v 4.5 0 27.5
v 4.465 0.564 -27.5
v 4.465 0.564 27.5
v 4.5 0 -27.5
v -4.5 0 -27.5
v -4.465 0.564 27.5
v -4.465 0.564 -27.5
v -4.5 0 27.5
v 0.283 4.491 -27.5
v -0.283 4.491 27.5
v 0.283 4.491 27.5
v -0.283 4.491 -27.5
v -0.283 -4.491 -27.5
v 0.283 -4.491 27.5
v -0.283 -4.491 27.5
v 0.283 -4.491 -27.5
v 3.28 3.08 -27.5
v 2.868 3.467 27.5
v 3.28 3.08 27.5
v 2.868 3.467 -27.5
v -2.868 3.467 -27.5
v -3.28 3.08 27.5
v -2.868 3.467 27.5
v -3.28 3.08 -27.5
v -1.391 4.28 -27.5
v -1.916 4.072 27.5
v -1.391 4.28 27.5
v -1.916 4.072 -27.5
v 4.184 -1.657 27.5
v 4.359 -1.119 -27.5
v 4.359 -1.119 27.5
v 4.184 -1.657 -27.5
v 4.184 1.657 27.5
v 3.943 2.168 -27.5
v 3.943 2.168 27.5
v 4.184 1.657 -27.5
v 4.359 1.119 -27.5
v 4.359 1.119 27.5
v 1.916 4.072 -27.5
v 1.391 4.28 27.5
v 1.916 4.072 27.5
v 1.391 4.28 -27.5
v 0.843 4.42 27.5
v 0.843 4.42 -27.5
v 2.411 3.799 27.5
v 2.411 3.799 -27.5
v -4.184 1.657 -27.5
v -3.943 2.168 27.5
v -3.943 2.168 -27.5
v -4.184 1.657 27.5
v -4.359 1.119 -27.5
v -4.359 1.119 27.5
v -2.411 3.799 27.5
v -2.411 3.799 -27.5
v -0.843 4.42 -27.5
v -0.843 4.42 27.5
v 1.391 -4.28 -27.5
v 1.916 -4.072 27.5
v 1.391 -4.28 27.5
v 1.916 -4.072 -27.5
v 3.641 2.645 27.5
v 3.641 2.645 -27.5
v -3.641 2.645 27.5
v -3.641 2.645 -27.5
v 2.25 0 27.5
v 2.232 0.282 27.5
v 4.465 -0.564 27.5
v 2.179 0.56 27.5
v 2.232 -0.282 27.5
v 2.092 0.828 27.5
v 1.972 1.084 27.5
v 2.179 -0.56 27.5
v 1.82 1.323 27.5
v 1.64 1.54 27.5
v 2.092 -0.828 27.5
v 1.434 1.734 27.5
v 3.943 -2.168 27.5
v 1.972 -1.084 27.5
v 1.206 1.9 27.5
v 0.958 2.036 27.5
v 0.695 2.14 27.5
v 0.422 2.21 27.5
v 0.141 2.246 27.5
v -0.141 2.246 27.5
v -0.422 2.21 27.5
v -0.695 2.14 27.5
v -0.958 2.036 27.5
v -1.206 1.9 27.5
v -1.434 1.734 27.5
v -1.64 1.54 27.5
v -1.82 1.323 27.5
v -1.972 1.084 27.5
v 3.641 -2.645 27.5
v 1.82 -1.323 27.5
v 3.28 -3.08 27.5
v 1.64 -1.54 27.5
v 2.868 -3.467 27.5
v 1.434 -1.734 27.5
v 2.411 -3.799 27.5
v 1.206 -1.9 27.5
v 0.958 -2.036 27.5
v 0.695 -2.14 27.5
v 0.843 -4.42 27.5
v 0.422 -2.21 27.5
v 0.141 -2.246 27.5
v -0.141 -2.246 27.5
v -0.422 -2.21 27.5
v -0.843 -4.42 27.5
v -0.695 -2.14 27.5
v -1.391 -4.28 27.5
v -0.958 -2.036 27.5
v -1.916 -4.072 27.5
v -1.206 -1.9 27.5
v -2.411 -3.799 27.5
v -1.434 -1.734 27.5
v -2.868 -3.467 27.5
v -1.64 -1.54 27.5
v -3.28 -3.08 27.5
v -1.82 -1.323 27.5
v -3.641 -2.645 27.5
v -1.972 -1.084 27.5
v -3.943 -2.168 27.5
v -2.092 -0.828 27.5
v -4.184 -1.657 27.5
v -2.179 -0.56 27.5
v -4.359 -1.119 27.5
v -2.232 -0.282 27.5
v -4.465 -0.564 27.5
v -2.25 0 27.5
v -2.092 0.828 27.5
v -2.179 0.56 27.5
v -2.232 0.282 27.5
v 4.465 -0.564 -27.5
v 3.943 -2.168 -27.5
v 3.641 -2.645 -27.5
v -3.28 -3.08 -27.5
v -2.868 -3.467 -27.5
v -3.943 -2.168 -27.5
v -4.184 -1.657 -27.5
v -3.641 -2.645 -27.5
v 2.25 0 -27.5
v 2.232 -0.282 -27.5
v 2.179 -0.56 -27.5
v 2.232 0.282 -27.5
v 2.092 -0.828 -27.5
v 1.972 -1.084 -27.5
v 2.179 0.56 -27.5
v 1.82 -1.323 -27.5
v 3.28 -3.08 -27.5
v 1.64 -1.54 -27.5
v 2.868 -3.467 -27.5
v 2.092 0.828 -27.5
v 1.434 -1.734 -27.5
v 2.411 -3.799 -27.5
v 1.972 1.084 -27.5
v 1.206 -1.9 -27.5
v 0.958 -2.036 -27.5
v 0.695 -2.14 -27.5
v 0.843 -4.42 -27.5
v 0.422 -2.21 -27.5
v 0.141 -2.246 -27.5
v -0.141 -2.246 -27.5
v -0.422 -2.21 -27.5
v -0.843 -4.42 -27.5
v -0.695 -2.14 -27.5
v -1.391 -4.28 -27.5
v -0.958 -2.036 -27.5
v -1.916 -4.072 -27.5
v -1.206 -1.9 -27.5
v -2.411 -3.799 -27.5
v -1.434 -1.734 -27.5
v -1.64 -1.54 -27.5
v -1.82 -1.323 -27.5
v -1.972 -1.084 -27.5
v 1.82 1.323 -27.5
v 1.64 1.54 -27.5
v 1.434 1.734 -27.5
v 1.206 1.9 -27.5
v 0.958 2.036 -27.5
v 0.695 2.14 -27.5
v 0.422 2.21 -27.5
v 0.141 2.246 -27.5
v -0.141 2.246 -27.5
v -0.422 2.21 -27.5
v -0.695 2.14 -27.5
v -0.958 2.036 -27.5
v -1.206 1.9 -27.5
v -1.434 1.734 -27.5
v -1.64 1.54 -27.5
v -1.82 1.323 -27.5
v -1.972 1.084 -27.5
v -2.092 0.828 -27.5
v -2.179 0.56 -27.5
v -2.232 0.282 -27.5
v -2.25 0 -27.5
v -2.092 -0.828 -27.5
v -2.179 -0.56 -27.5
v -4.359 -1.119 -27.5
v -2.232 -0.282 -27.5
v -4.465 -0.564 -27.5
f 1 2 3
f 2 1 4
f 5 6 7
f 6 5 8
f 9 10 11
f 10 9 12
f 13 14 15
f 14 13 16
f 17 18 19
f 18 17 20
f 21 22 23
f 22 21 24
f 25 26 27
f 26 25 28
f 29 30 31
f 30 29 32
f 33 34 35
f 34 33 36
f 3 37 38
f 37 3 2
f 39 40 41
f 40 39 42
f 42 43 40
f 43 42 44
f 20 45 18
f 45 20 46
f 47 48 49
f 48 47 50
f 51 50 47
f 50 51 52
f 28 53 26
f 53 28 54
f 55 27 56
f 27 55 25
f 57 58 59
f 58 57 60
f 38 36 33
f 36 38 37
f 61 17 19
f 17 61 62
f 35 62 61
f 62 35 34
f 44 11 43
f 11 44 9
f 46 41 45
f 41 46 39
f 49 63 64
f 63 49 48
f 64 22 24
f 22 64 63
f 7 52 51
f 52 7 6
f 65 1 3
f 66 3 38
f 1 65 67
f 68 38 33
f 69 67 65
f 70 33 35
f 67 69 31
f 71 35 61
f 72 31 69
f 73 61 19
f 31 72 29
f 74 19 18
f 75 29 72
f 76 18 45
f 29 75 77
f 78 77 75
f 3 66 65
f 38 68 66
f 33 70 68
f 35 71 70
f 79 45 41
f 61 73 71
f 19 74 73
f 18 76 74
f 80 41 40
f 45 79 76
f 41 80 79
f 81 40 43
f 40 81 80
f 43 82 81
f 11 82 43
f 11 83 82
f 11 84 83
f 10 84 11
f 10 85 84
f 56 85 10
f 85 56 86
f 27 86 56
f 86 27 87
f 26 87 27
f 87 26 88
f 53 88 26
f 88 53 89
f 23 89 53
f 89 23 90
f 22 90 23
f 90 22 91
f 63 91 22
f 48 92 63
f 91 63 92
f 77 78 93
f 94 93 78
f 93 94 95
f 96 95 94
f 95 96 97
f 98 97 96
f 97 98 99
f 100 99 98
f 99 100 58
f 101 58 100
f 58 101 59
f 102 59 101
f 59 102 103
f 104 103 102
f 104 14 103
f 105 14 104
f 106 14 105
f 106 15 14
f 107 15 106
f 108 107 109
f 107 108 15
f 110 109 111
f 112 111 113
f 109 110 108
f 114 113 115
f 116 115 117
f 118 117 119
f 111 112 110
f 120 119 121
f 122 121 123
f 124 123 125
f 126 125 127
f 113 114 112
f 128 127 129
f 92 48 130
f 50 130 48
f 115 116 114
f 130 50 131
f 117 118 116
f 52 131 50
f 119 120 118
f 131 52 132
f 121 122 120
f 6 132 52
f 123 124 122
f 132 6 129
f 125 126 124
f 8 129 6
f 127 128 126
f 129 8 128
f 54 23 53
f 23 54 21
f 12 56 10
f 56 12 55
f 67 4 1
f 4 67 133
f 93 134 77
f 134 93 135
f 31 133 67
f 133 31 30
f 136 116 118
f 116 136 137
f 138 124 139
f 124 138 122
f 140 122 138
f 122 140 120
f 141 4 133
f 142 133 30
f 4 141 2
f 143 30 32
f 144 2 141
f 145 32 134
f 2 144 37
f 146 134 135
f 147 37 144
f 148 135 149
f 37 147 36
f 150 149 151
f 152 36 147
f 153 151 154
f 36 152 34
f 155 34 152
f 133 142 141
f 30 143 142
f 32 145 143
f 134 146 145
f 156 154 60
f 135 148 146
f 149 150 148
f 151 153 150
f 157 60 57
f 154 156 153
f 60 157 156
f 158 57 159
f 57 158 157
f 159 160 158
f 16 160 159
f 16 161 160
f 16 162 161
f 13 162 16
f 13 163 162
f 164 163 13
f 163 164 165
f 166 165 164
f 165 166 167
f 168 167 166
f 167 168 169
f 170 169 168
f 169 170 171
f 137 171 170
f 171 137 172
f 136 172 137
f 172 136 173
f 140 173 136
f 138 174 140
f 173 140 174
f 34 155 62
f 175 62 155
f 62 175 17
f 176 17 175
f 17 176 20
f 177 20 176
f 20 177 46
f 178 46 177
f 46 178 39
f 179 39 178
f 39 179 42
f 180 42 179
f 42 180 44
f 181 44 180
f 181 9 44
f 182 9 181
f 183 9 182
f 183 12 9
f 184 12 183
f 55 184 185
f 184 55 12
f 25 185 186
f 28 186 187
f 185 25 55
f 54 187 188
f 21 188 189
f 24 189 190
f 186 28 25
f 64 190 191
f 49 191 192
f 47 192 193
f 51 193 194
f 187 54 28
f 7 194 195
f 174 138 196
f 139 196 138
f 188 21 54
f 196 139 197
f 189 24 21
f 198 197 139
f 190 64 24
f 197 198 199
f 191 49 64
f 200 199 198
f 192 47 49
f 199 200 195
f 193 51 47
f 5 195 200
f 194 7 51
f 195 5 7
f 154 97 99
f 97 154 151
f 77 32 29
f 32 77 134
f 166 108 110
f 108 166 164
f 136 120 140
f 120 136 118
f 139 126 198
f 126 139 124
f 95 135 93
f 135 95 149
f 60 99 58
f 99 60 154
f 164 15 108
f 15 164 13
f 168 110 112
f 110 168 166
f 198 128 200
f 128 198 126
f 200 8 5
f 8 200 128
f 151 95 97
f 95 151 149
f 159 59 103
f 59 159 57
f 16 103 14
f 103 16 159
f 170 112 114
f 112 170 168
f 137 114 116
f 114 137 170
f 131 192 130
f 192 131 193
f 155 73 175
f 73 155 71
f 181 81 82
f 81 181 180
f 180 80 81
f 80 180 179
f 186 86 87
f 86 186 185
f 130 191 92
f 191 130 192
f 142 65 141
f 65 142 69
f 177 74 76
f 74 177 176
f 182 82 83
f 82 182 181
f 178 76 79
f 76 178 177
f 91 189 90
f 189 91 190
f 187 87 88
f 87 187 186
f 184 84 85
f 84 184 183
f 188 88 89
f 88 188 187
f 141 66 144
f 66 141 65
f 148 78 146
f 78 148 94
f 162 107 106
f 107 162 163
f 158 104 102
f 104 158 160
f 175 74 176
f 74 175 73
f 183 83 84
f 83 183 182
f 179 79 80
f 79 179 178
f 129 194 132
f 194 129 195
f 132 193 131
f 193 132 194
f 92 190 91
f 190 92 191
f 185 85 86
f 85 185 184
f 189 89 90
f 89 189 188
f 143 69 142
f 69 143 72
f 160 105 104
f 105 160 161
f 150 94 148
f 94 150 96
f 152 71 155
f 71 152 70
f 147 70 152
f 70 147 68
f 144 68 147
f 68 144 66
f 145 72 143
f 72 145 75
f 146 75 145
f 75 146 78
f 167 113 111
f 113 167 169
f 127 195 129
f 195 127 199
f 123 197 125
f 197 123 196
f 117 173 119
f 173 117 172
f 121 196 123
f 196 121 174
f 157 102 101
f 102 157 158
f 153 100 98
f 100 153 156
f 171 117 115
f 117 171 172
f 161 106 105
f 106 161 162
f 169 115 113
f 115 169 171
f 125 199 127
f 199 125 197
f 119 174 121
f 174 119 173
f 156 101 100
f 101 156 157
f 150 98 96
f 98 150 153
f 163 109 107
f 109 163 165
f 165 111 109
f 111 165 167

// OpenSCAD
$fn = 50;


difference() {
	union() {
		translate(v = [0, 0, -27.5000000000]) {
			cylinder(h = 55, r = 4.5000000000);
		}
	}
	union() {
		translate(v = [0, 0, -100.0000000000]) {
			cylinder(h = 200, r = 2.2500000000);
		}
	}
}
